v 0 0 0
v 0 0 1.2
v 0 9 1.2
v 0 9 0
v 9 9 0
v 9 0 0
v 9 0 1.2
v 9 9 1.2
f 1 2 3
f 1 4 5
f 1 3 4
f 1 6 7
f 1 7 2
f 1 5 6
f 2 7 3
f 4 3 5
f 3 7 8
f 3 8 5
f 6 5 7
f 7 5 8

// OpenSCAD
/* Warning, this is a very basic generator with a lot of approximation 
input data : [TFBGA, 8GW, 9x9x1.2mm, 289, , A, C04-00661A]
generated by com.zoubworld.electronics.cad.model3d.Basic
Date : Sun Feb 15 10:50:49 CET 2026
*/

//body
color("black")
translate([0,0,0])
cube([9.0,9.0,1.2], center=false);
